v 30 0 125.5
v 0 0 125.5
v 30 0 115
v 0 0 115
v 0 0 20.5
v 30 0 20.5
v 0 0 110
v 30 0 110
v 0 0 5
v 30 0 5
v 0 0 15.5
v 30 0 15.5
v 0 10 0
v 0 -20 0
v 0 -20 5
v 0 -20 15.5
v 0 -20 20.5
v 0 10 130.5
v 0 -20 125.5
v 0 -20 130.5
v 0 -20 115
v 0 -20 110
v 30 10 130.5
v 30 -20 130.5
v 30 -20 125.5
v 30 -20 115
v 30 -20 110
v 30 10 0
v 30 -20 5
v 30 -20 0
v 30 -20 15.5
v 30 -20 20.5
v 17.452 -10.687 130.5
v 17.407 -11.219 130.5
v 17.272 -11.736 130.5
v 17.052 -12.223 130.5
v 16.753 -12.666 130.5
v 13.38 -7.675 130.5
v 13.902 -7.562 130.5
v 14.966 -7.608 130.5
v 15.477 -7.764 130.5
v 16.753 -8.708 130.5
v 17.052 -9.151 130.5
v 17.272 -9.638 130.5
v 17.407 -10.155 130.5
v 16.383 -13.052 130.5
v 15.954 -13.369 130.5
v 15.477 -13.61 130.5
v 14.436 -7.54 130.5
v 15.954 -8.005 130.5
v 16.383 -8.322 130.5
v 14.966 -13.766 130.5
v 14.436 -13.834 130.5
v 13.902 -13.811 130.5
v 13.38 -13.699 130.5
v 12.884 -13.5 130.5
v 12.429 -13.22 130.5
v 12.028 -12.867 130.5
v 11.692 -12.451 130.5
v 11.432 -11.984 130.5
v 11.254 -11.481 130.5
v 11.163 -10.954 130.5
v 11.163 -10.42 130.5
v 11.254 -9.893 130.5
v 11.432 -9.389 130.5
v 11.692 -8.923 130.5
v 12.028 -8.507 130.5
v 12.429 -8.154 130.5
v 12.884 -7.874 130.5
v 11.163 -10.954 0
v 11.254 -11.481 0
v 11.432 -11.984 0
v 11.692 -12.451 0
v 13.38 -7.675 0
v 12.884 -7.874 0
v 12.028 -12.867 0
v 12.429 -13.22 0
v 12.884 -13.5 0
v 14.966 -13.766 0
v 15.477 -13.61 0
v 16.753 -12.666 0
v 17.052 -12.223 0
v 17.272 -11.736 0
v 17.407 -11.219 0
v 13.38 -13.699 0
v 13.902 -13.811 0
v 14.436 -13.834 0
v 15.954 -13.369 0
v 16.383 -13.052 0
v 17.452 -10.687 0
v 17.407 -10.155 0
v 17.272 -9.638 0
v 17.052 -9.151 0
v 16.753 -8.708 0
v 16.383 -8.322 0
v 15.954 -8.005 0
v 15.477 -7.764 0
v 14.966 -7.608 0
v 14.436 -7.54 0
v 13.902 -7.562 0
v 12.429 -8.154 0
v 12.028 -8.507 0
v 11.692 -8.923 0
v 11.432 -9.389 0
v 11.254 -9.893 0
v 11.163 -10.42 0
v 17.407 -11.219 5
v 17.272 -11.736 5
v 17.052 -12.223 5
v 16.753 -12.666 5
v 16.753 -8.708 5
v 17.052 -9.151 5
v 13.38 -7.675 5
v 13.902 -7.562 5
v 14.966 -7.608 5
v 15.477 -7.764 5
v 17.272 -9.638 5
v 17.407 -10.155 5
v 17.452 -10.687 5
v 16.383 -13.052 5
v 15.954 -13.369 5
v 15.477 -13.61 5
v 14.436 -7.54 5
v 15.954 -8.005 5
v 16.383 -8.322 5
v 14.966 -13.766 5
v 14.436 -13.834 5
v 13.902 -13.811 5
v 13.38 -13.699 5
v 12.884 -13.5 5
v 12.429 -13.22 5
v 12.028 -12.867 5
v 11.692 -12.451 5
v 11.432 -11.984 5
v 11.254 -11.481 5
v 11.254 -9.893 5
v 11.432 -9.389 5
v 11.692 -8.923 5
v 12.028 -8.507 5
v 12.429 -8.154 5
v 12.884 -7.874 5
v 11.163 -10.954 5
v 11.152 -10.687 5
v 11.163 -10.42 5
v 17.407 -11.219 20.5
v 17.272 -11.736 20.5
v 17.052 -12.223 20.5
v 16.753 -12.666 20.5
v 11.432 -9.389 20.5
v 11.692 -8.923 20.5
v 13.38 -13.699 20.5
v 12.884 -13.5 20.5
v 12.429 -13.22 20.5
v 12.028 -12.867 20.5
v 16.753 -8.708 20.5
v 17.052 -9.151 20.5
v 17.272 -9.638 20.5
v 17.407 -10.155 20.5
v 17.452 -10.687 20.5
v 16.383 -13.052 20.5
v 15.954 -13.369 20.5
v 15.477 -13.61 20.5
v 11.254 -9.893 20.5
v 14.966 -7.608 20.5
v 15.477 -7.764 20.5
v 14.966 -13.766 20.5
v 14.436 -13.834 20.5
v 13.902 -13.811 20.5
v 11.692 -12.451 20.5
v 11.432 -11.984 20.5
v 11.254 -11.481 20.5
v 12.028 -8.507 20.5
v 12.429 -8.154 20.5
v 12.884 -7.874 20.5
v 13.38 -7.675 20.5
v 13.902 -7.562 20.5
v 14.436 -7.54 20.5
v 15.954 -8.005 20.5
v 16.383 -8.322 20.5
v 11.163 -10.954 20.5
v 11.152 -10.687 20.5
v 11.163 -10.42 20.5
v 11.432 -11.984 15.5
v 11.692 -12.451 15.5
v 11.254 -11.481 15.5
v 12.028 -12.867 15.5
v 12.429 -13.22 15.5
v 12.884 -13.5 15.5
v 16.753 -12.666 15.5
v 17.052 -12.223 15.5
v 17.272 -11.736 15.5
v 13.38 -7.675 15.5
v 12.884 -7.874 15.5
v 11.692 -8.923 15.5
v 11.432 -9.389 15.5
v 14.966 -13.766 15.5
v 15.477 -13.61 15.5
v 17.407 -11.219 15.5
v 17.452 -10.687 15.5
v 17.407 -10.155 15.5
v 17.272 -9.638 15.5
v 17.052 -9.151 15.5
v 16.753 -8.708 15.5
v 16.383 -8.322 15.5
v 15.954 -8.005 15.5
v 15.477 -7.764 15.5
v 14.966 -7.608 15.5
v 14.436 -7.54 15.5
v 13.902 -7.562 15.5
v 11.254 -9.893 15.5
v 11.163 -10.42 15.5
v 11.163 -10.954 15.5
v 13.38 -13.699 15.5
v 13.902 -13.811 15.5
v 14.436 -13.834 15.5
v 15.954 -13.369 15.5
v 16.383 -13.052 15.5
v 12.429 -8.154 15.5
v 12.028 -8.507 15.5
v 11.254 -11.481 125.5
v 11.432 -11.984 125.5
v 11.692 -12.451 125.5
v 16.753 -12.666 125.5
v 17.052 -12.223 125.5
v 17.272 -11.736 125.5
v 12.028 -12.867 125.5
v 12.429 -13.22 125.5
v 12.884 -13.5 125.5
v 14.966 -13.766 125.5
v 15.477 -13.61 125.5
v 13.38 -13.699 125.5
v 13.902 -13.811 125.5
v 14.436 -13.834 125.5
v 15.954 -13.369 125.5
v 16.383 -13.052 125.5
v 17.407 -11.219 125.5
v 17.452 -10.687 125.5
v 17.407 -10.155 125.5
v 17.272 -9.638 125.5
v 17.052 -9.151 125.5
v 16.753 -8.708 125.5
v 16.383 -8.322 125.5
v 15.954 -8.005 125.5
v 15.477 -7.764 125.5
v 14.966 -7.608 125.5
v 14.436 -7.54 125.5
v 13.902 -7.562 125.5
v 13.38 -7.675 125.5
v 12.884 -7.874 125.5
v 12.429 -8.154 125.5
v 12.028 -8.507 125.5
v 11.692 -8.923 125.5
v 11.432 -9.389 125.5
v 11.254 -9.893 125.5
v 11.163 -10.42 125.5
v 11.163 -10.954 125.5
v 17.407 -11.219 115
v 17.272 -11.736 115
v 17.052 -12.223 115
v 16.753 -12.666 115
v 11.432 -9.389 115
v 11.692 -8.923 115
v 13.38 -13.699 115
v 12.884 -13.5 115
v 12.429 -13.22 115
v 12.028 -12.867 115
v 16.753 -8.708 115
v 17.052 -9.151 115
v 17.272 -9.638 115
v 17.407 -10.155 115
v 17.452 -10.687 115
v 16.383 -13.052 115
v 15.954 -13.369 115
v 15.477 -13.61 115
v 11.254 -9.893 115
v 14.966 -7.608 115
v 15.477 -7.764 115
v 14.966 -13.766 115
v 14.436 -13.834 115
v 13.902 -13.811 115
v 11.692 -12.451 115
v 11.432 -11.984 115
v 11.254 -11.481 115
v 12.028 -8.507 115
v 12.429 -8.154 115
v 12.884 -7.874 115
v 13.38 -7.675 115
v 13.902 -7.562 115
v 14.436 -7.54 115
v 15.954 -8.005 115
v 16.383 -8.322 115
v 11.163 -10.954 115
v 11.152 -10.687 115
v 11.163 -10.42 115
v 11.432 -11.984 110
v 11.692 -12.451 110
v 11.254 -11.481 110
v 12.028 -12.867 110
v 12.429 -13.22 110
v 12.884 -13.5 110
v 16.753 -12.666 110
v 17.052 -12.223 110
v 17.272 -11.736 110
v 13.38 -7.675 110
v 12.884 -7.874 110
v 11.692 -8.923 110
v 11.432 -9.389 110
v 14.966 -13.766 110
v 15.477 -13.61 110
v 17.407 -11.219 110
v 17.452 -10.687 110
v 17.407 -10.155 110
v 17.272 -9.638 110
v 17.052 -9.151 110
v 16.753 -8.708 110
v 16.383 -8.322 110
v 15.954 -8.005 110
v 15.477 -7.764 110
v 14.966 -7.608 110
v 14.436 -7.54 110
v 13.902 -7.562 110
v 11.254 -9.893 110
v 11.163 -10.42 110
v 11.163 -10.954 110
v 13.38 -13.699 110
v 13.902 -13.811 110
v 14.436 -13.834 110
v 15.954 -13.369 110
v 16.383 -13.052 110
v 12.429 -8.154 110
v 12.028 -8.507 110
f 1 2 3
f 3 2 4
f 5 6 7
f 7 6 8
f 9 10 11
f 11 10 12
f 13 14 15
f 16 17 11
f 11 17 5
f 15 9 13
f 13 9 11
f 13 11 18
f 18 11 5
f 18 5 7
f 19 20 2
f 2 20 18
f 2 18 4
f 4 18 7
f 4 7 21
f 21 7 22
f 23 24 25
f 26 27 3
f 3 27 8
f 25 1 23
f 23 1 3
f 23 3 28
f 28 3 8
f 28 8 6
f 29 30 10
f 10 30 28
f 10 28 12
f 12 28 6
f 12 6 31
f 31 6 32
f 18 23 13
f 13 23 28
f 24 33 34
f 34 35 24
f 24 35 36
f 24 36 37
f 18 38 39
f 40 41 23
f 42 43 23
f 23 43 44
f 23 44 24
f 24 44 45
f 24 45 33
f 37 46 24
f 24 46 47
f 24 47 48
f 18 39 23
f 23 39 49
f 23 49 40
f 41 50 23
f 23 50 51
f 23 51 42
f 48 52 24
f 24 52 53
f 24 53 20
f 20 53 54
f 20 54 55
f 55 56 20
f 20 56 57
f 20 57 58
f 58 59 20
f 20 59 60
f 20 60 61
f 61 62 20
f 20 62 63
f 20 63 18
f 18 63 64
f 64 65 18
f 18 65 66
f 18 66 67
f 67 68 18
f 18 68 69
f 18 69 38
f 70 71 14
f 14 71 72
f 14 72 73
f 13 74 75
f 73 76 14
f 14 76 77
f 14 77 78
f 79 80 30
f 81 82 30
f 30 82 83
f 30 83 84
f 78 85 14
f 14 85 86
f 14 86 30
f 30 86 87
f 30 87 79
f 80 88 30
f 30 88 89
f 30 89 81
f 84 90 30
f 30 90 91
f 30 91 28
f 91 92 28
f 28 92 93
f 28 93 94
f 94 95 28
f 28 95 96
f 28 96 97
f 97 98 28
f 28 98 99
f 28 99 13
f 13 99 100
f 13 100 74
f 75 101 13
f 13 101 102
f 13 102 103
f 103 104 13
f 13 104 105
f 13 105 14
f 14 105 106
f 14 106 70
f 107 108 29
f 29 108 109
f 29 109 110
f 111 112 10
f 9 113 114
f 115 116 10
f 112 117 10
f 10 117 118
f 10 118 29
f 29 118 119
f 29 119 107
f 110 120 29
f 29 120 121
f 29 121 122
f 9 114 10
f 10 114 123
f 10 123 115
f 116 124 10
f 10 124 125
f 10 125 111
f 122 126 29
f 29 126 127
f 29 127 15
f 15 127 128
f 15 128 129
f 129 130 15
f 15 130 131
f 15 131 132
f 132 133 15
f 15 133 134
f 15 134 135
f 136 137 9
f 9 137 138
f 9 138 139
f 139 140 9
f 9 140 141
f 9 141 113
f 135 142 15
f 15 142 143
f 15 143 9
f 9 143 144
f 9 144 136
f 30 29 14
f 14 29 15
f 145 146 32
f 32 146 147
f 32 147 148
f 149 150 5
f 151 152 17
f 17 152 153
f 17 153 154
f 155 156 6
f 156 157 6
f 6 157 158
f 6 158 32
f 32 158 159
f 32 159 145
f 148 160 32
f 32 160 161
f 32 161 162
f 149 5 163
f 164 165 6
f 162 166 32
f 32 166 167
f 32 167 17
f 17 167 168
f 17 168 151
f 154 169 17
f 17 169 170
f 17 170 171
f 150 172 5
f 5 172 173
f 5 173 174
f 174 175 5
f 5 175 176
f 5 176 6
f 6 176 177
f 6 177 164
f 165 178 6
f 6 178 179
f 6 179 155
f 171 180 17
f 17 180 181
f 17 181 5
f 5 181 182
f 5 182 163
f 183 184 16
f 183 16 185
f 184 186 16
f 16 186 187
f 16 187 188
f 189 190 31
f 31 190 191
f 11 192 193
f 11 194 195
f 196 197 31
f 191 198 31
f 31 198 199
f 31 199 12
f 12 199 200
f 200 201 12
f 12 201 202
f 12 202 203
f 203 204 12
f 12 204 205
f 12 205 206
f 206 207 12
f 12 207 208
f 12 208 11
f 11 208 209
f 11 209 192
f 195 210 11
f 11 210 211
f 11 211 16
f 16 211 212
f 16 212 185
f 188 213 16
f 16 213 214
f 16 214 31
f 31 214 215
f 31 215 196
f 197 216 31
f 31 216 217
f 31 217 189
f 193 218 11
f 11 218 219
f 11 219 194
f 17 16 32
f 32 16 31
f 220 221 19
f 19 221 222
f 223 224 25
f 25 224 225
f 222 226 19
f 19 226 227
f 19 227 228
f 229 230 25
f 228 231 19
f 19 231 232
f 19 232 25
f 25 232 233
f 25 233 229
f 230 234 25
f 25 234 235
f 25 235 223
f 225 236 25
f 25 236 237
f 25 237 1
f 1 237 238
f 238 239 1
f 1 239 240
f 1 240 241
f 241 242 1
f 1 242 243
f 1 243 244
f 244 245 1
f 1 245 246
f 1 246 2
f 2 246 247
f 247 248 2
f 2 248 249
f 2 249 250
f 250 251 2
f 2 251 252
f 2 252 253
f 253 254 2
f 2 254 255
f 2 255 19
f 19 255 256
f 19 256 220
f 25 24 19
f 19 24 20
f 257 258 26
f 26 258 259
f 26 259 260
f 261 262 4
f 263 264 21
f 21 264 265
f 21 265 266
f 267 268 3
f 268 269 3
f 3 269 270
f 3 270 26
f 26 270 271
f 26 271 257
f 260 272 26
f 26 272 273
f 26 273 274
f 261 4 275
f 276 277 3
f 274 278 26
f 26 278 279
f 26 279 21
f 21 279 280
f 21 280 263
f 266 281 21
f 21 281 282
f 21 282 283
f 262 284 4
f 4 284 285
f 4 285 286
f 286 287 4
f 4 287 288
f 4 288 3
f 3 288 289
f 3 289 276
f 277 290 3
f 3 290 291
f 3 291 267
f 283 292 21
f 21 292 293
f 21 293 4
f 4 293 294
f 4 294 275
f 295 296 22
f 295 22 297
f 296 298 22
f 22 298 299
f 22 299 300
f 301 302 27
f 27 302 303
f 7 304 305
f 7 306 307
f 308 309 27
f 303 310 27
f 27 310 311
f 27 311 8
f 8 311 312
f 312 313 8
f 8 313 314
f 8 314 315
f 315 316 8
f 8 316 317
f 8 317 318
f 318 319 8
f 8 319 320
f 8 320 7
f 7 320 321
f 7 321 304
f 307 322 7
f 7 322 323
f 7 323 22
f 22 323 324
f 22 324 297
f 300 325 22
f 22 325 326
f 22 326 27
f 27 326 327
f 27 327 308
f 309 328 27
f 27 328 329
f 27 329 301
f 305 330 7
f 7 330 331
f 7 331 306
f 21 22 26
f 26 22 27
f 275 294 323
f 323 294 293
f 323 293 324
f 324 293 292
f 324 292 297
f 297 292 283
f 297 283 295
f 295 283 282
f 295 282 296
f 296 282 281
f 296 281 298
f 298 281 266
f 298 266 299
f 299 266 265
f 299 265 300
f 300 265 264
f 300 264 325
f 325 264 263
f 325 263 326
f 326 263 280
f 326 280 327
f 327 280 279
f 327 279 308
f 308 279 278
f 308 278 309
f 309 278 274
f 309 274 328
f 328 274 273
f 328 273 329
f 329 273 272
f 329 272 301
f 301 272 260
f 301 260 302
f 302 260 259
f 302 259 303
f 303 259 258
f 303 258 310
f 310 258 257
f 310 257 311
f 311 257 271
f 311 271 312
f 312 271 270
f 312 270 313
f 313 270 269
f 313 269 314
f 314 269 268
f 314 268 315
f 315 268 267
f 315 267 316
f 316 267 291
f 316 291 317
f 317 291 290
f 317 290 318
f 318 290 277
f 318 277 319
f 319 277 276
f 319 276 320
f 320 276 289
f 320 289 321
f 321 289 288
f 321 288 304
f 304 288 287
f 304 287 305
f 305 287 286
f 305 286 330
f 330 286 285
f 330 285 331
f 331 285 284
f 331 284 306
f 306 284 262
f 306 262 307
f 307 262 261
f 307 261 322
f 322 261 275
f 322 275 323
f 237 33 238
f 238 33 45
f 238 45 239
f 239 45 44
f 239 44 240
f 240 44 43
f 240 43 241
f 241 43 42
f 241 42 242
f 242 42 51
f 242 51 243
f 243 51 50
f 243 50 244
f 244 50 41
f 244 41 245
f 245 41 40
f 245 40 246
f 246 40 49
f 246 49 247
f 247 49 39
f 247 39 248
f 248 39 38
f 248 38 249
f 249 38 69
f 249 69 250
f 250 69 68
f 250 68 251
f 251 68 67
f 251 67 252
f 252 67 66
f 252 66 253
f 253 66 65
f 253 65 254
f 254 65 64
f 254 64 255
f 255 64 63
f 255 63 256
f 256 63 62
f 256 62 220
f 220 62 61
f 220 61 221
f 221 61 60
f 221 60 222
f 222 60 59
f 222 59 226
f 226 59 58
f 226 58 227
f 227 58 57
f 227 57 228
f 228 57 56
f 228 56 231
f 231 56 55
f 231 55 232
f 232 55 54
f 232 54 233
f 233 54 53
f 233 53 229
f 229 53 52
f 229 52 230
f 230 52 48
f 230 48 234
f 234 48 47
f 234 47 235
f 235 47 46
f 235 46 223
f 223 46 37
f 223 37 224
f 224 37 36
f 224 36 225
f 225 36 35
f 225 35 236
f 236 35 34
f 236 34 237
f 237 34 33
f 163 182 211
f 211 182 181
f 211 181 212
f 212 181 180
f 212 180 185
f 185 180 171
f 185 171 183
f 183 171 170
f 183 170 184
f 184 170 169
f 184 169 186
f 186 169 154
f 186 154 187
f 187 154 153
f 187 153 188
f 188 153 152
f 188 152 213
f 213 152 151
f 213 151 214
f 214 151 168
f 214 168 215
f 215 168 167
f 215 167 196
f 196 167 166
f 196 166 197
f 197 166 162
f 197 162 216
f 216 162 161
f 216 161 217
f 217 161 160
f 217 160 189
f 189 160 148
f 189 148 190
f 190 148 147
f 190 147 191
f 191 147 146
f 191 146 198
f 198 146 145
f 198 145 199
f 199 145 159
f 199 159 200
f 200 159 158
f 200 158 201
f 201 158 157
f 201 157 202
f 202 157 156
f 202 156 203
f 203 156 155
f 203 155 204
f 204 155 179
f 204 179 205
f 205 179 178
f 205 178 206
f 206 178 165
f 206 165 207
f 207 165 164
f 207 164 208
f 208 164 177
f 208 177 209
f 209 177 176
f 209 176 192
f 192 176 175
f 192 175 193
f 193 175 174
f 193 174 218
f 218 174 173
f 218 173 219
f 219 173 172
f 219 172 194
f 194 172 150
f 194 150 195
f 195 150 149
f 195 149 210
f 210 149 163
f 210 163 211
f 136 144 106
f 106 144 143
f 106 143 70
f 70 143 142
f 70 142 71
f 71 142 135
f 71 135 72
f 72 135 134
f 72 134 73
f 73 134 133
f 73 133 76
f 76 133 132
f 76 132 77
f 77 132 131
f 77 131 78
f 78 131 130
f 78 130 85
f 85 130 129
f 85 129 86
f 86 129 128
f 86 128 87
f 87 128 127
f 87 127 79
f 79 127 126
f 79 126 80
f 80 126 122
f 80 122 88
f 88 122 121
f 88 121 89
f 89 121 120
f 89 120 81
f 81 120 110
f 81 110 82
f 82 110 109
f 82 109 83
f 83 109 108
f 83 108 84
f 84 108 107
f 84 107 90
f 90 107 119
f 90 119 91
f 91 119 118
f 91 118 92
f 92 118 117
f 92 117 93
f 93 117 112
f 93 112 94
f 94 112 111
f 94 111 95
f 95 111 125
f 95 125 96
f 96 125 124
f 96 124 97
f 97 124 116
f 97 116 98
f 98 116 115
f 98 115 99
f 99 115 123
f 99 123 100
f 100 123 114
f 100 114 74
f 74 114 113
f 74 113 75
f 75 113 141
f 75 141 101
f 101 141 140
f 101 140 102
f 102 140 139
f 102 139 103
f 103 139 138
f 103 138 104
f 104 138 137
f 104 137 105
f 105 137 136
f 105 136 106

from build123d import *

# Parameters (mm, degrees)
ESQUISSE1_W             = 30
ESQUISSE1_H             = 10
BOSS_EXTRU_1_DEPTH      = 130.5
ESQUISSE2_W             = 30
ESQUISSE2_H             = 5
BOSS_EXTRU_2_DEPTH      = 20
ESQUISSE3_R             = 3.15
ENL_V_MAT_EXTRU_2_DEPTH = 136.389253636


with BuildPart() as part:
    # Esquisse1 → Boss.-Extru.1 (new body)
    with BuildSketch(Plane.XY):
        with Locations((15, 5)):
            Rectangle(ESQUISSE1_W, ESQUISSE1_H)
    extrude(amount=BOSS_EXTRU_1_DEPTH)

    # Esquisse2 → Boss.-Extru.2 (add)
    with BuildSketch(Plane.XZ):
        with Locations((15, 2.5)):
            Rectangle(ESQUISSE2_W, ESQUISSE2_H)
        with Locations((15, 18)):
            Rectangle(ESQUISSE2_W, ESQUISSE2_H)
        with Locations((15, 128)):
            Rectangle(ESQUISSE2_W, ESQUISSE2_H)
        with Locations((15, 112.5)):
            Rectangle(ESQUISSE2_W, ESQUISSE2_H)
    extrude(amount=BOSS_EXTRU_2_DEPTH)

    # Esquisse3 → Enlèv. mat.-Extru.2 (cut, through all)
    with BuildSketch(Plane.XY.offset(130.5)):
        with Locations((14.302143115, -10.686909811)):
            Circle(ESQUISSE3_R)
    extrude(amount=-ENL_V_MAT_EXTRU_2_DEPTH, mode=Mode.SUBTRACT)


solid = part.part
